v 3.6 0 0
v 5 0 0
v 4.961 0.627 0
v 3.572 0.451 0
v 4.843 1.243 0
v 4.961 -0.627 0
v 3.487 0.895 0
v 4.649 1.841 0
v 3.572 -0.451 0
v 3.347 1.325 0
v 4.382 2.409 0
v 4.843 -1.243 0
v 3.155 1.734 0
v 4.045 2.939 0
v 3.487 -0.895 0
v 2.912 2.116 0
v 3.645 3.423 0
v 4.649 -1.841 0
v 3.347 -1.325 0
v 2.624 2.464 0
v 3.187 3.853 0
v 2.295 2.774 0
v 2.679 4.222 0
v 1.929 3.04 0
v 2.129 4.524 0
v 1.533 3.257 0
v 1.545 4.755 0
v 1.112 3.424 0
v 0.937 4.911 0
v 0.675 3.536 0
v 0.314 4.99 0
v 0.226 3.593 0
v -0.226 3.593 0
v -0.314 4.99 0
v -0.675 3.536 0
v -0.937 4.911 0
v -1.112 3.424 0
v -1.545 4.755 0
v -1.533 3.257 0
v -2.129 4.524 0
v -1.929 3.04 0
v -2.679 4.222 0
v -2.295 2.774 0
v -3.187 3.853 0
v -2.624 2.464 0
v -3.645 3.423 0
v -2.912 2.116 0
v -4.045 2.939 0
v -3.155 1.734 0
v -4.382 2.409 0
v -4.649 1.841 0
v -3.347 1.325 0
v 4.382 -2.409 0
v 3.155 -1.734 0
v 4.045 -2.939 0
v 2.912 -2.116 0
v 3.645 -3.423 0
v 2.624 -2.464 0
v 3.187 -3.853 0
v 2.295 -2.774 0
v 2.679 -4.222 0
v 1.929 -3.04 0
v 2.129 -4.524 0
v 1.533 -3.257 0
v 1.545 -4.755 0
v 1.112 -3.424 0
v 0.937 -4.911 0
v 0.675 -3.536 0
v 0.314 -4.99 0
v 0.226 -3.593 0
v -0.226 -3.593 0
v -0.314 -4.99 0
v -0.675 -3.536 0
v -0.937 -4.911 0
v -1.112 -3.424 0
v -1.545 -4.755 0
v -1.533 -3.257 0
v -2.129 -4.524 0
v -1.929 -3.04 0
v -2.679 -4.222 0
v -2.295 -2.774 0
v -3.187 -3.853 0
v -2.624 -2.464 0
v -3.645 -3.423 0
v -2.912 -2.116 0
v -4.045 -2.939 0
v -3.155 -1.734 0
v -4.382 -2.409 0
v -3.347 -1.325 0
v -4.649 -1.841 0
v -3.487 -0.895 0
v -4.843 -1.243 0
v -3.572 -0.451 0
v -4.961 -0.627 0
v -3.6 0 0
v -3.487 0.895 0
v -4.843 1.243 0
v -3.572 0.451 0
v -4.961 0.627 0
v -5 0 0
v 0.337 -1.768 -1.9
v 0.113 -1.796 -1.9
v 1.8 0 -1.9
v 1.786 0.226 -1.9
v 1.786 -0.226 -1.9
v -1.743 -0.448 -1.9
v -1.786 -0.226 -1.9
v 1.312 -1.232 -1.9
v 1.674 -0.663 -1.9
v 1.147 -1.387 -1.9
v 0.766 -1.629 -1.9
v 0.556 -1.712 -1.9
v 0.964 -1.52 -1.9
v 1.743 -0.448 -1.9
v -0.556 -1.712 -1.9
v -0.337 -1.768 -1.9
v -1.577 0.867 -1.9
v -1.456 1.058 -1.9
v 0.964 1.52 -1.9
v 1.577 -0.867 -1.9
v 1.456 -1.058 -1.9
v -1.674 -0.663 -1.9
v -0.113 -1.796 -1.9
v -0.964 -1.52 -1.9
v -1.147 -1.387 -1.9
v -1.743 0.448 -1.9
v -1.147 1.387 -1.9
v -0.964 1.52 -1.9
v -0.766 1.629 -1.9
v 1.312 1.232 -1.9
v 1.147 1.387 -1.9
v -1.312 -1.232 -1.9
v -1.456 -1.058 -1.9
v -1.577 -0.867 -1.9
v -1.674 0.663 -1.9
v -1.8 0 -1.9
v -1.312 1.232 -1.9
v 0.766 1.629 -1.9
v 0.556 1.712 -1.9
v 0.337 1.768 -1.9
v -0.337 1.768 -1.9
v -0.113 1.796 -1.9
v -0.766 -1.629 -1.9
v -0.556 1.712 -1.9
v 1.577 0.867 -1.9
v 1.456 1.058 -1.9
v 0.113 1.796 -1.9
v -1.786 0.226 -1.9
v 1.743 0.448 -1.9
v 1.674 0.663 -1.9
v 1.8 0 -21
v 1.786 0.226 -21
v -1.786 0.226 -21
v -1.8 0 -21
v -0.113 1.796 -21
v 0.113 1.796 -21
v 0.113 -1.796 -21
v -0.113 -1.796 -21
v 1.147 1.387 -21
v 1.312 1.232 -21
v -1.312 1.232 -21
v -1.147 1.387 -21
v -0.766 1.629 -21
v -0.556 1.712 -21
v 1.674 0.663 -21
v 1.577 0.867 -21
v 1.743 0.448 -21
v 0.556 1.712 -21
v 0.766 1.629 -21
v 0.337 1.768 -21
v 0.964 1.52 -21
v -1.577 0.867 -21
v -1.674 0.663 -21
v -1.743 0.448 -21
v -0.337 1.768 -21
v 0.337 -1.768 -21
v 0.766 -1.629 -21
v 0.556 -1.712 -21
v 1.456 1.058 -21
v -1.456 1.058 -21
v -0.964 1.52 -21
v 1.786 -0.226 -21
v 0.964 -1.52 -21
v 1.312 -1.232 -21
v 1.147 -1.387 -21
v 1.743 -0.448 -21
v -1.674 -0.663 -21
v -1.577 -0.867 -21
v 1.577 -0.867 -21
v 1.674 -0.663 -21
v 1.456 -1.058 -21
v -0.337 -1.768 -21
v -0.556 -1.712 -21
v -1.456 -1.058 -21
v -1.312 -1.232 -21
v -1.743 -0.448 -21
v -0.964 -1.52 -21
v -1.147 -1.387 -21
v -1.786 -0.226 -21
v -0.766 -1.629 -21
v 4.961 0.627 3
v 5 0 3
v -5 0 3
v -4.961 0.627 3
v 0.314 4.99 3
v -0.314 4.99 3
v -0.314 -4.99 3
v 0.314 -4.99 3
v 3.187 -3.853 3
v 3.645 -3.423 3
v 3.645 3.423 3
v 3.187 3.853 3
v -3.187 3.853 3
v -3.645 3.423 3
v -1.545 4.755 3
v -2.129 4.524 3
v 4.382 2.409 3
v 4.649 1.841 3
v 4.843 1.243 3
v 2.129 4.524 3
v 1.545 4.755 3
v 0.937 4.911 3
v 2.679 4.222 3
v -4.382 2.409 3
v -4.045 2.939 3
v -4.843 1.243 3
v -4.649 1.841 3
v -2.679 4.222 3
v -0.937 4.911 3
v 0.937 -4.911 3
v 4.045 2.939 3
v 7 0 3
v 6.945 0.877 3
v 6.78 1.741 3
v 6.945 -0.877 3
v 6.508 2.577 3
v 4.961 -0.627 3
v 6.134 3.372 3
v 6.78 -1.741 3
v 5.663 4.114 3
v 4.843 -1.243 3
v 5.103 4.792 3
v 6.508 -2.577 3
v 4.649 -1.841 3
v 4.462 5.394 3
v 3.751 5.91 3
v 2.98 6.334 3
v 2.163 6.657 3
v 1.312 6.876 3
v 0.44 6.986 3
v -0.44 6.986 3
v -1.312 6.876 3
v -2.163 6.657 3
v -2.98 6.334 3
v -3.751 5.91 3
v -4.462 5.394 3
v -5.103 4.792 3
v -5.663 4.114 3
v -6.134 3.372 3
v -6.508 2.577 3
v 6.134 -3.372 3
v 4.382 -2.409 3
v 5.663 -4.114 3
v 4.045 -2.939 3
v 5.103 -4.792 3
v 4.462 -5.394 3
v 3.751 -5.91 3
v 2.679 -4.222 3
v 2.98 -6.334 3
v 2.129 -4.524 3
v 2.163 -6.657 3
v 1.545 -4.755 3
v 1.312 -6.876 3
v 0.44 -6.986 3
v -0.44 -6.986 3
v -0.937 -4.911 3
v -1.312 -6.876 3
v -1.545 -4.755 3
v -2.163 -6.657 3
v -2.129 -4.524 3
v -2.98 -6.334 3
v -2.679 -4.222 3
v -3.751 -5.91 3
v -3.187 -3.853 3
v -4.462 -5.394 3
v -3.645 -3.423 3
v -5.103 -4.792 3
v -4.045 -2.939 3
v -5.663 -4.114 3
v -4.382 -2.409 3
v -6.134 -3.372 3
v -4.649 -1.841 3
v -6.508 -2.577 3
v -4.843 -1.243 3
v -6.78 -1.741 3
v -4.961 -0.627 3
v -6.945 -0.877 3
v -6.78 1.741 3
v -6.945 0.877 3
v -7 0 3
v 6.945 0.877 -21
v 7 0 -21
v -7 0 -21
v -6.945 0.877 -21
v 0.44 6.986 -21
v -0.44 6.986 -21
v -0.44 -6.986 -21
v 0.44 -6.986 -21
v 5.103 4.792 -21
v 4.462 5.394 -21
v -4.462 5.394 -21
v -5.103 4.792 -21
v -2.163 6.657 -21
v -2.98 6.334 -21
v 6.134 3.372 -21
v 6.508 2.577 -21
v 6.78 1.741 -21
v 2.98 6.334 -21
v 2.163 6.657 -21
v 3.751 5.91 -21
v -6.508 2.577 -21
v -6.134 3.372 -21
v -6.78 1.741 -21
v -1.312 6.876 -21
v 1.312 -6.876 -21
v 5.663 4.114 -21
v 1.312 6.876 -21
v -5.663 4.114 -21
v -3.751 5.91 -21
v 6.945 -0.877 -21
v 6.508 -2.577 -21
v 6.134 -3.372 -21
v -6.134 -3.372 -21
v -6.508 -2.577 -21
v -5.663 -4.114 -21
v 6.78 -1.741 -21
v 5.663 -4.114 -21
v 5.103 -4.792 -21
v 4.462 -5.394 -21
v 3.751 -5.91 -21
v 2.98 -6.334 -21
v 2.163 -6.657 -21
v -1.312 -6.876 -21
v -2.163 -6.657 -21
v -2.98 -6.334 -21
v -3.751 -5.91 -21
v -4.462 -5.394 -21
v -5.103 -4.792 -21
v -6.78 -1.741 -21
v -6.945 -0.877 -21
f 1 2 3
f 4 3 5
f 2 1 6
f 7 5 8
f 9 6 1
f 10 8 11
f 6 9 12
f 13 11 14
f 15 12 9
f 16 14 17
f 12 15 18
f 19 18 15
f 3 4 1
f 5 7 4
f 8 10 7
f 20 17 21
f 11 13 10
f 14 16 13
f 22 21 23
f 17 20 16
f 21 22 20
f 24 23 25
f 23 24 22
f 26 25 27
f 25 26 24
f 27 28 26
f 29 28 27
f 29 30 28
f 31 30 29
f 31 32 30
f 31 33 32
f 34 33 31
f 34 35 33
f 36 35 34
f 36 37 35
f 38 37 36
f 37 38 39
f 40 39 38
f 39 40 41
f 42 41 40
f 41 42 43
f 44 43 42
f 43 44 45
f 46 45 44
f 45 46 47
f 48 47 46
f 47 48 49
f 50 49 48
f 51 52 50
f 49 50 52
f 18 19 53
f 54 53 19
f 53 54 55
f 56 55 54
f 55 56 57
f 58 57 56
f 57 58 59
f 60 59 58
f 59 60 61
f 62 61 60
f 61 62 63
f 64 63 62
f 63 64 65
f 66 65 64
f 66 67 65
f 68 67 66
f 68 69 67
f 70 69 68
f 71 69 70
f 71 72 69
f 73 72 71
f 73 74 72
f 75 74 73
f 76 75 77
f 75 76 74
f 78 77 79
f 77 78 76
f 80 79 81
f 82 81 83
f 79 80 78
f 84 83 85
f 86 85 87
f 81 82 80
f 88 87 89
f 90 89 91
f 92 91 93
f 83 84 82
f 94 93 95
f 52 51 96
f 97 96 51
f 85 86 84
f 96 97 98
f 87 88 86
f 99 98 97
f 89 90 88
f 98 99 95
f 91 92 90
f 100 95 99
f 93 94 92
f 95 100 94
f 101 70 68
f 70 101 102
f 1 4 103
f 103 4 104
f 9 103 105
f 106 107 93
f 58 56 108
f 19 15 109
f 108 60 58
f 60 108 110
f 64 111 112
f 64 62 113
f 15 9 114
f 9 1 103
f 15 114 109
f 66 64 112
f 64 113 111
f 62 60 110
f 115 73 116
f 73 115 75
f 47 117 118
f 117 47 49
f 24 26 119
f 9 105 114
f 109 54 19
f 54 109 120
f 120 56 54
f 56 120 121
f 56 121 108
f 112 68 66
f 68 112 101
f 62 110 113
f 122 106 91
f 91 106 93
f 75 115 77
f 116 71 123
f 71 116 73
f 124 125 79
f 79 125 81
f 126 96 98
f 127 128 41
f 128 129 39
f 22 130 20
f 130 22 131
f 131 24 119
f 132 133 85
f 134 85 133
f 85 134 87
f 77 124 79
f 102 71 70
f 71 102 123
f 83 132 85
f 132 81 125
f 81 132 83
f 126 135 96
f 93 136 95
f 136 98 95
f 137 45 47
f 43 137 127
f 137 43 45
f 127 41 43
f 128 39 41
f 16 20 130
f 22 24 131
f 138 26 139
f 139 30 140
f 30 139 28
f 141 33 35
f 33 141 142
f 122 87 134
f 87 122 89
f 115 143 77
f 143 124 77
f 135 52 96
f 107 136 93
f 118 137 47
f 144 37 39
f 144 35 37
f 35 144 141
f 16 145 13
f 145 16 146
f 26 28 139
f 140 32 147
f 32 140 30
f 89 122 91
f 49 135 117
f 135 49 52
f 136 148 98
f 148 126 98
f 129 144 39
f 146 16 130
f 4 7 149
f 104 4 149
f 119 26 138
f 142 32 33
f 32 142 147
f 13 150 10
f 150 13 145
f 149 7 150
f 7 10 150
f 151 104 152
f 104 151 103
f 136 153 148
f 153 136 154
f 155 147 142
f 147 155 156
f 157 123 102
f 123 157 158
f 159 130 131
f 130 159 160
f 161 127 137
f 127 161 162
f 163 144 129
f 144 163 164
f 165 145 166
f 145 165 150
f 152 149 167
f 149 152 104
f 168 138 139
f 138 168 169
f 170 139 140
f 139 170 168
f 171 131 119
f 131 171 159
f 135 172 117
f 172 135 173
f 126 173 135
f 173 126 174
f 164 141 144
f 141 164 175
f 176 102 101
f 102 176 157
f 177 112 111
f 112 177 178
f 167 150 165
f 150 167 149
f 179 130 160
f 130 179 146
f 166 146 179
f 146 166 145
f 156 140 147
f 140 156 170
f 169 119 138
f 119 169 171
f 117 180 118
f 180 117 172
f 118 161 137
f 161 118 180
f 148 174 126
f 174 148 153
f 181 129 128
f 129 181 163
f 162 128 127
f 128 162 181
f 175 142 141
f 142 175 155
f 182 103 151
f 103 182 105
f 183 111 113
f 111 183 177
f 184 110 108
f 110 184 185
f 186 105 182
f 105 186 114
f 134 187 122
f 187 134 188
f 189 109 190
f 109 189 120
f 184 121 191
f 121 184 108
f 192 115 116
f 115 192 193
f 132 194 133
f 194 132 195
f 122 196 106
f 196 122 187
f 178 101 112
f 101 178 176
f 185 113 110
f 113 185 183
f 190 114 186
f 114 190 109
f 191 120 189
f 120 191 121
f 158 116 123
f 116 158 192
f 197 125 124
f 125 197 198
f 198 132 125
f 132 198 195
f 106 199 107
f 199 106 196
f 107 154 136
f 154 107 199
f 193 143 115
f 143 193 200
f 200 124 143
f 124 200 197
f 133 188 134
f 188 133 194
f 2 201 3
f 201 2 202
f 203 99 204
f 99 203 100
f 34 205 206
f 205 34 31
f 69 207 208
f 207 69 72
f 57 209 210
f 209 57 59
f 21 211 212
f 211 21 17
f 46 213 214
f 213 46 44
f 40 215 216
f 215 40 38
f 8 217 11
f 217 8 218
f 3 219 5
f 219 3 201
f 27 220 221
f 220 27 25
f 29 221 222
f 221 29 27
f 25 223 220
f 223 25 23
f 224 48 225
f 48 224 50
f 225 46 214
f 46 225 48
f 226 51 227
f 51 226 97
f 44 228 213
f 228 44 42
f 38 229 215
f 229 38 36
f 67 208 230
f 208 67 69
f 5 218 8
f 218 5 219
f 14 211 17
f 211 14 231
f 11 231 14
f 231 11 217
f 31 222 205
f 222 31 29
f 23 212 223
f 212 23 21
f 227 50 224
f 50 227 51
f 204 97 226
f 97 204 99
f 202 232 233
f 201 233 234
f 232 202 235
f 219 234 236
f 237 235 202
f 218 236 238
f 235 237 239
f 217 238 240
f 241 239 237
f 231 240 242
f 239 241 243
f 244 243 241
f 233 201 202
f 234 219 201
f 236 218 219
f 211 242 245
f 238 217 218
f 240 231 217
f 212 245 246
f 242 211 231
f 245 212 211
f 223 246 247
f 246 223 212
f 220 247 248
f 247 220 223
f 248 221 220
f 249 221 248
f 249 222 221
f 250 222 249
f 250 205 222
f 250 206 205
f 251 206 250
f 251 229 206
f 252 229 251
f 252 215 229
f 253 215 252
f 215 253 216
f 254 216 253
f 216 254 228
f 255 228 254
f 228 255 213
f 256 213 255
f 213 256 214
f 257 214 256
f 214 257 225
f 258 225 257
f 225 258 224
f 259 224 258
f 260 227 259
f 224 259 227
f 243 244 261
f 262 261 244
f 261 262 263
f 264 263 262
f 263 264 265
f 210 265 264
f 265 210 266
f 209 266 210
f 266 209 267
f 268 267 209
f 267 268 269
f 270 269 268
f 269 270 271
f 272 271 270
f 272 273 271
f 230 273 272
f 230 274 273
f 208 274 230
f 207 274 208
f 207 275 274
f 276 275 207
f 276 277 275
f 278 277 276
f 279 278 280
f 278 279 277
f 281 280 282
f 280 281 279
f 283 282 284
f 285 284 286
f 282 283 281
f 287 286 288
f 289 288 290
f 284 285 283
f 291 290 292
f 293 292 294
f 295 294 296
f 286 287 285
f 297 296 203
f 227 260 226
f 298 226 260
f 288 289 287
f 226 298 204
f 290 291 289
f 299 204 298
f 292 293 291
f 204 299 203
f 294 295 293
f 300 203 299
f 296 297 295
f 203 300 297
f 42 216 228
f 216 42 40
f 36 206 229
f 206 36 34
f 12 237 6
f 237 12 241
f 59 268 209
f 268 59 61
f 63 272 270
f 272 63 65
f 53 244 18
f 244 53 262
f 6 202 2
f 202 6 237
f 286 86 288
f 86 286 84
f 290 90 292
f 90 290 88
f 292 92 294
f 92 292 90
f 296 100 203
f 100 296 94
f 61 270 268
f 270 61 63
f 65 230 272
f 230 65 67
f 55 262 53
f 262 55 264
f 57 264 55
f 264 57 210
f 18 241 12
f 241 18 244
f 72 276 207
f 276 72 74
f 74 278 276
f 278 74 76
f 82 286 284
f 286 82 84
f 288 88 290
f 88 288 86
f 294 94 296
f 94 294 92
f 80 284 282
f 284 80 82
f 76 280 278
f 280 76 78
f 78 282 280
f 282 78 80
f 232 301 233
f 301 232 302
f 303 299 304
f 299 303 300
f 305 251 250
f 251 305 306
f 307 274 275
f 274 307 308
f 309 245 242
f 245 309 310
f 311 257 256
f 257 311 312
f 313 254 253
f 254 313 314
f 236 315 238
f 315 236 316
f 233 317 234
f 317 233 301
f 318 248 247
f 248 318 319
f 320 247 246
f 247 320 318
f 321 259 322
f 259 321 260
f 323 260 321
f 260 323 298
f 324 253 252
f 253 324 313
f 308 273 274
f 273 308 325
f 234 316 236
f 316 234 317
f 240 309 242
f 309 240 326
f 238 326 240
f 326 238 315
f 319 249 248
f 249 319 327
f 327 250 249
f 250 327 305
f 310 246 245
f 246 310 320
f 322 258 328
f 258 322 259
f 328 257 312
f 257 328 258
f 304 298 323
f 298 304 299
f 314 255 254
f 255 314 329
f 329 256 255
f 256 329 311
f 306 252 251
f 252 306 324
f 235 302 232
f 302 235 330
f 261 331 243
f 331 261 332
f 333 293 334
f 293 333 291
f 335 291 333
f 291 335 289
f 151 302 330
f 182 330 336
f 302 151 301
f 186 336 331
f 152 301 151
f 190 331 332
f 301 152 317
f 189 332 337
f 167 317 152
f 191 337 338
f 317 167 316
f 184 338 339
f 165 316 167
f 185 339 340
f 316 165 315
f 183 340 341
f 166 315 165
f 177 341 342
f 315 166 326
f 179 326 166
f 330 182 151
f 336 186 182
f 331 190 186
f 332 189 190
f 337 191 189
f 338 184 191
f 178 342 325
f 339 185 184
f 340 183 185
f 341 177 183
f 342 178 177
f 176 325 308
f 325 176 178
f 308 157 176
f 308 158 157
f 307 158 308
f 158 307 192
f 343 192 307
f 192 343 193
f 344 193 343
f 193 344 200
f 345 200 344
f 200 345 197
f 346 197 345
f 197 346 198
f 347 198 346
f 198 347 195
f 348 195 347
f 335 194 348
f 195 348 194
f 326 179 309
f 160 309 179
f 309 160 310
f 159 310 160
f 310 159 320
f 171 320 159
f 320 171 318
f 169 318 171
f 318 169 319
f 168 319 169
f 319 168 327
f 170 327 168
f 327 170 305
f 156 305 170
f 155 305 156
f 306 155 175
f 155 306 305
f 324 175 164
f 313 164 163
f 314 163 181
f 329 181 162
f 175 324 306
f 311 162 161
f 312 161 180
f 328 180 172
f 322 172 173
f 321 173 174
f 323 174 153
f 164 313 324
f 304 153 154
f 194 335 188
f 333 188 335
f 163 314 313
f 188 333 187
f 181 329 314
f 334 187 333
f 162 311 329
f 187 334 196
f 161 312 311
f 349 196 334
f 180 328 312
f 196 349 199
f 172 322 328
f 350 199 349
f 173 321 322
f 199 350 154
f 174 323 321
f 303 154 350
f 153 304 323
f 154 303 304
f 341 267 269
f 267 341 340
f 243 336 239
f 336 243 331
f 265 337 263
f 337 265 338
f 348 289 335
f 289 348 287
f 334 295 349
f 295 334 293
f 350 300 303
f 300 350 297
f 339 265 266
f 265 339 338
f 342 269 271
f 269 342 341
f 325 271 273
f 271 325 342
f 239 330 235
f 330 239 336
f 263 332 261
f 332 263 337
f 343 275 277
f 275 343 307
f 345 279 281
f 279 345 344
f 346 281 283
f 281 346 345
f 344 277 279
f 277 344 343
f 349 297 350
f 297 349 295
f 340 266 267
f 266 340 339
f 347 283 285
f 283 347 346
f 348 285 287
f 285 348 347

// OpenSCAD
$fn = 50;

difference() {
	union() {
		translate(v = [0, 0, -21.0]) {
			cylinder(h = 24, r = 7.0);
		}
	}
	union() {
		translate(v = [0, 0, 0]) {
			rotate(a = [0, 0, 0]) {
				difference() {
					union() {
						translate(v = [0, 0, -24.0]) {
							cylinder(h = 24, r = 1.5);
						}
						translate(v = [0, 0, -1.9]) {
							cylinder(h = 1.9, r1 = 1.8, r2 = 3.6);
						}
						translate(v = [0, 0, -24.0]) {
							cylinder(h = 24, r = 1.8);
						}
						translate(v = [0, 0, -24.0]) {
							cylinder(h = 24, r = 1.5);
						}
					}
					union();
				}
			}
		}
		#cylinder(h = 3, r = 5.0);
	}
}
